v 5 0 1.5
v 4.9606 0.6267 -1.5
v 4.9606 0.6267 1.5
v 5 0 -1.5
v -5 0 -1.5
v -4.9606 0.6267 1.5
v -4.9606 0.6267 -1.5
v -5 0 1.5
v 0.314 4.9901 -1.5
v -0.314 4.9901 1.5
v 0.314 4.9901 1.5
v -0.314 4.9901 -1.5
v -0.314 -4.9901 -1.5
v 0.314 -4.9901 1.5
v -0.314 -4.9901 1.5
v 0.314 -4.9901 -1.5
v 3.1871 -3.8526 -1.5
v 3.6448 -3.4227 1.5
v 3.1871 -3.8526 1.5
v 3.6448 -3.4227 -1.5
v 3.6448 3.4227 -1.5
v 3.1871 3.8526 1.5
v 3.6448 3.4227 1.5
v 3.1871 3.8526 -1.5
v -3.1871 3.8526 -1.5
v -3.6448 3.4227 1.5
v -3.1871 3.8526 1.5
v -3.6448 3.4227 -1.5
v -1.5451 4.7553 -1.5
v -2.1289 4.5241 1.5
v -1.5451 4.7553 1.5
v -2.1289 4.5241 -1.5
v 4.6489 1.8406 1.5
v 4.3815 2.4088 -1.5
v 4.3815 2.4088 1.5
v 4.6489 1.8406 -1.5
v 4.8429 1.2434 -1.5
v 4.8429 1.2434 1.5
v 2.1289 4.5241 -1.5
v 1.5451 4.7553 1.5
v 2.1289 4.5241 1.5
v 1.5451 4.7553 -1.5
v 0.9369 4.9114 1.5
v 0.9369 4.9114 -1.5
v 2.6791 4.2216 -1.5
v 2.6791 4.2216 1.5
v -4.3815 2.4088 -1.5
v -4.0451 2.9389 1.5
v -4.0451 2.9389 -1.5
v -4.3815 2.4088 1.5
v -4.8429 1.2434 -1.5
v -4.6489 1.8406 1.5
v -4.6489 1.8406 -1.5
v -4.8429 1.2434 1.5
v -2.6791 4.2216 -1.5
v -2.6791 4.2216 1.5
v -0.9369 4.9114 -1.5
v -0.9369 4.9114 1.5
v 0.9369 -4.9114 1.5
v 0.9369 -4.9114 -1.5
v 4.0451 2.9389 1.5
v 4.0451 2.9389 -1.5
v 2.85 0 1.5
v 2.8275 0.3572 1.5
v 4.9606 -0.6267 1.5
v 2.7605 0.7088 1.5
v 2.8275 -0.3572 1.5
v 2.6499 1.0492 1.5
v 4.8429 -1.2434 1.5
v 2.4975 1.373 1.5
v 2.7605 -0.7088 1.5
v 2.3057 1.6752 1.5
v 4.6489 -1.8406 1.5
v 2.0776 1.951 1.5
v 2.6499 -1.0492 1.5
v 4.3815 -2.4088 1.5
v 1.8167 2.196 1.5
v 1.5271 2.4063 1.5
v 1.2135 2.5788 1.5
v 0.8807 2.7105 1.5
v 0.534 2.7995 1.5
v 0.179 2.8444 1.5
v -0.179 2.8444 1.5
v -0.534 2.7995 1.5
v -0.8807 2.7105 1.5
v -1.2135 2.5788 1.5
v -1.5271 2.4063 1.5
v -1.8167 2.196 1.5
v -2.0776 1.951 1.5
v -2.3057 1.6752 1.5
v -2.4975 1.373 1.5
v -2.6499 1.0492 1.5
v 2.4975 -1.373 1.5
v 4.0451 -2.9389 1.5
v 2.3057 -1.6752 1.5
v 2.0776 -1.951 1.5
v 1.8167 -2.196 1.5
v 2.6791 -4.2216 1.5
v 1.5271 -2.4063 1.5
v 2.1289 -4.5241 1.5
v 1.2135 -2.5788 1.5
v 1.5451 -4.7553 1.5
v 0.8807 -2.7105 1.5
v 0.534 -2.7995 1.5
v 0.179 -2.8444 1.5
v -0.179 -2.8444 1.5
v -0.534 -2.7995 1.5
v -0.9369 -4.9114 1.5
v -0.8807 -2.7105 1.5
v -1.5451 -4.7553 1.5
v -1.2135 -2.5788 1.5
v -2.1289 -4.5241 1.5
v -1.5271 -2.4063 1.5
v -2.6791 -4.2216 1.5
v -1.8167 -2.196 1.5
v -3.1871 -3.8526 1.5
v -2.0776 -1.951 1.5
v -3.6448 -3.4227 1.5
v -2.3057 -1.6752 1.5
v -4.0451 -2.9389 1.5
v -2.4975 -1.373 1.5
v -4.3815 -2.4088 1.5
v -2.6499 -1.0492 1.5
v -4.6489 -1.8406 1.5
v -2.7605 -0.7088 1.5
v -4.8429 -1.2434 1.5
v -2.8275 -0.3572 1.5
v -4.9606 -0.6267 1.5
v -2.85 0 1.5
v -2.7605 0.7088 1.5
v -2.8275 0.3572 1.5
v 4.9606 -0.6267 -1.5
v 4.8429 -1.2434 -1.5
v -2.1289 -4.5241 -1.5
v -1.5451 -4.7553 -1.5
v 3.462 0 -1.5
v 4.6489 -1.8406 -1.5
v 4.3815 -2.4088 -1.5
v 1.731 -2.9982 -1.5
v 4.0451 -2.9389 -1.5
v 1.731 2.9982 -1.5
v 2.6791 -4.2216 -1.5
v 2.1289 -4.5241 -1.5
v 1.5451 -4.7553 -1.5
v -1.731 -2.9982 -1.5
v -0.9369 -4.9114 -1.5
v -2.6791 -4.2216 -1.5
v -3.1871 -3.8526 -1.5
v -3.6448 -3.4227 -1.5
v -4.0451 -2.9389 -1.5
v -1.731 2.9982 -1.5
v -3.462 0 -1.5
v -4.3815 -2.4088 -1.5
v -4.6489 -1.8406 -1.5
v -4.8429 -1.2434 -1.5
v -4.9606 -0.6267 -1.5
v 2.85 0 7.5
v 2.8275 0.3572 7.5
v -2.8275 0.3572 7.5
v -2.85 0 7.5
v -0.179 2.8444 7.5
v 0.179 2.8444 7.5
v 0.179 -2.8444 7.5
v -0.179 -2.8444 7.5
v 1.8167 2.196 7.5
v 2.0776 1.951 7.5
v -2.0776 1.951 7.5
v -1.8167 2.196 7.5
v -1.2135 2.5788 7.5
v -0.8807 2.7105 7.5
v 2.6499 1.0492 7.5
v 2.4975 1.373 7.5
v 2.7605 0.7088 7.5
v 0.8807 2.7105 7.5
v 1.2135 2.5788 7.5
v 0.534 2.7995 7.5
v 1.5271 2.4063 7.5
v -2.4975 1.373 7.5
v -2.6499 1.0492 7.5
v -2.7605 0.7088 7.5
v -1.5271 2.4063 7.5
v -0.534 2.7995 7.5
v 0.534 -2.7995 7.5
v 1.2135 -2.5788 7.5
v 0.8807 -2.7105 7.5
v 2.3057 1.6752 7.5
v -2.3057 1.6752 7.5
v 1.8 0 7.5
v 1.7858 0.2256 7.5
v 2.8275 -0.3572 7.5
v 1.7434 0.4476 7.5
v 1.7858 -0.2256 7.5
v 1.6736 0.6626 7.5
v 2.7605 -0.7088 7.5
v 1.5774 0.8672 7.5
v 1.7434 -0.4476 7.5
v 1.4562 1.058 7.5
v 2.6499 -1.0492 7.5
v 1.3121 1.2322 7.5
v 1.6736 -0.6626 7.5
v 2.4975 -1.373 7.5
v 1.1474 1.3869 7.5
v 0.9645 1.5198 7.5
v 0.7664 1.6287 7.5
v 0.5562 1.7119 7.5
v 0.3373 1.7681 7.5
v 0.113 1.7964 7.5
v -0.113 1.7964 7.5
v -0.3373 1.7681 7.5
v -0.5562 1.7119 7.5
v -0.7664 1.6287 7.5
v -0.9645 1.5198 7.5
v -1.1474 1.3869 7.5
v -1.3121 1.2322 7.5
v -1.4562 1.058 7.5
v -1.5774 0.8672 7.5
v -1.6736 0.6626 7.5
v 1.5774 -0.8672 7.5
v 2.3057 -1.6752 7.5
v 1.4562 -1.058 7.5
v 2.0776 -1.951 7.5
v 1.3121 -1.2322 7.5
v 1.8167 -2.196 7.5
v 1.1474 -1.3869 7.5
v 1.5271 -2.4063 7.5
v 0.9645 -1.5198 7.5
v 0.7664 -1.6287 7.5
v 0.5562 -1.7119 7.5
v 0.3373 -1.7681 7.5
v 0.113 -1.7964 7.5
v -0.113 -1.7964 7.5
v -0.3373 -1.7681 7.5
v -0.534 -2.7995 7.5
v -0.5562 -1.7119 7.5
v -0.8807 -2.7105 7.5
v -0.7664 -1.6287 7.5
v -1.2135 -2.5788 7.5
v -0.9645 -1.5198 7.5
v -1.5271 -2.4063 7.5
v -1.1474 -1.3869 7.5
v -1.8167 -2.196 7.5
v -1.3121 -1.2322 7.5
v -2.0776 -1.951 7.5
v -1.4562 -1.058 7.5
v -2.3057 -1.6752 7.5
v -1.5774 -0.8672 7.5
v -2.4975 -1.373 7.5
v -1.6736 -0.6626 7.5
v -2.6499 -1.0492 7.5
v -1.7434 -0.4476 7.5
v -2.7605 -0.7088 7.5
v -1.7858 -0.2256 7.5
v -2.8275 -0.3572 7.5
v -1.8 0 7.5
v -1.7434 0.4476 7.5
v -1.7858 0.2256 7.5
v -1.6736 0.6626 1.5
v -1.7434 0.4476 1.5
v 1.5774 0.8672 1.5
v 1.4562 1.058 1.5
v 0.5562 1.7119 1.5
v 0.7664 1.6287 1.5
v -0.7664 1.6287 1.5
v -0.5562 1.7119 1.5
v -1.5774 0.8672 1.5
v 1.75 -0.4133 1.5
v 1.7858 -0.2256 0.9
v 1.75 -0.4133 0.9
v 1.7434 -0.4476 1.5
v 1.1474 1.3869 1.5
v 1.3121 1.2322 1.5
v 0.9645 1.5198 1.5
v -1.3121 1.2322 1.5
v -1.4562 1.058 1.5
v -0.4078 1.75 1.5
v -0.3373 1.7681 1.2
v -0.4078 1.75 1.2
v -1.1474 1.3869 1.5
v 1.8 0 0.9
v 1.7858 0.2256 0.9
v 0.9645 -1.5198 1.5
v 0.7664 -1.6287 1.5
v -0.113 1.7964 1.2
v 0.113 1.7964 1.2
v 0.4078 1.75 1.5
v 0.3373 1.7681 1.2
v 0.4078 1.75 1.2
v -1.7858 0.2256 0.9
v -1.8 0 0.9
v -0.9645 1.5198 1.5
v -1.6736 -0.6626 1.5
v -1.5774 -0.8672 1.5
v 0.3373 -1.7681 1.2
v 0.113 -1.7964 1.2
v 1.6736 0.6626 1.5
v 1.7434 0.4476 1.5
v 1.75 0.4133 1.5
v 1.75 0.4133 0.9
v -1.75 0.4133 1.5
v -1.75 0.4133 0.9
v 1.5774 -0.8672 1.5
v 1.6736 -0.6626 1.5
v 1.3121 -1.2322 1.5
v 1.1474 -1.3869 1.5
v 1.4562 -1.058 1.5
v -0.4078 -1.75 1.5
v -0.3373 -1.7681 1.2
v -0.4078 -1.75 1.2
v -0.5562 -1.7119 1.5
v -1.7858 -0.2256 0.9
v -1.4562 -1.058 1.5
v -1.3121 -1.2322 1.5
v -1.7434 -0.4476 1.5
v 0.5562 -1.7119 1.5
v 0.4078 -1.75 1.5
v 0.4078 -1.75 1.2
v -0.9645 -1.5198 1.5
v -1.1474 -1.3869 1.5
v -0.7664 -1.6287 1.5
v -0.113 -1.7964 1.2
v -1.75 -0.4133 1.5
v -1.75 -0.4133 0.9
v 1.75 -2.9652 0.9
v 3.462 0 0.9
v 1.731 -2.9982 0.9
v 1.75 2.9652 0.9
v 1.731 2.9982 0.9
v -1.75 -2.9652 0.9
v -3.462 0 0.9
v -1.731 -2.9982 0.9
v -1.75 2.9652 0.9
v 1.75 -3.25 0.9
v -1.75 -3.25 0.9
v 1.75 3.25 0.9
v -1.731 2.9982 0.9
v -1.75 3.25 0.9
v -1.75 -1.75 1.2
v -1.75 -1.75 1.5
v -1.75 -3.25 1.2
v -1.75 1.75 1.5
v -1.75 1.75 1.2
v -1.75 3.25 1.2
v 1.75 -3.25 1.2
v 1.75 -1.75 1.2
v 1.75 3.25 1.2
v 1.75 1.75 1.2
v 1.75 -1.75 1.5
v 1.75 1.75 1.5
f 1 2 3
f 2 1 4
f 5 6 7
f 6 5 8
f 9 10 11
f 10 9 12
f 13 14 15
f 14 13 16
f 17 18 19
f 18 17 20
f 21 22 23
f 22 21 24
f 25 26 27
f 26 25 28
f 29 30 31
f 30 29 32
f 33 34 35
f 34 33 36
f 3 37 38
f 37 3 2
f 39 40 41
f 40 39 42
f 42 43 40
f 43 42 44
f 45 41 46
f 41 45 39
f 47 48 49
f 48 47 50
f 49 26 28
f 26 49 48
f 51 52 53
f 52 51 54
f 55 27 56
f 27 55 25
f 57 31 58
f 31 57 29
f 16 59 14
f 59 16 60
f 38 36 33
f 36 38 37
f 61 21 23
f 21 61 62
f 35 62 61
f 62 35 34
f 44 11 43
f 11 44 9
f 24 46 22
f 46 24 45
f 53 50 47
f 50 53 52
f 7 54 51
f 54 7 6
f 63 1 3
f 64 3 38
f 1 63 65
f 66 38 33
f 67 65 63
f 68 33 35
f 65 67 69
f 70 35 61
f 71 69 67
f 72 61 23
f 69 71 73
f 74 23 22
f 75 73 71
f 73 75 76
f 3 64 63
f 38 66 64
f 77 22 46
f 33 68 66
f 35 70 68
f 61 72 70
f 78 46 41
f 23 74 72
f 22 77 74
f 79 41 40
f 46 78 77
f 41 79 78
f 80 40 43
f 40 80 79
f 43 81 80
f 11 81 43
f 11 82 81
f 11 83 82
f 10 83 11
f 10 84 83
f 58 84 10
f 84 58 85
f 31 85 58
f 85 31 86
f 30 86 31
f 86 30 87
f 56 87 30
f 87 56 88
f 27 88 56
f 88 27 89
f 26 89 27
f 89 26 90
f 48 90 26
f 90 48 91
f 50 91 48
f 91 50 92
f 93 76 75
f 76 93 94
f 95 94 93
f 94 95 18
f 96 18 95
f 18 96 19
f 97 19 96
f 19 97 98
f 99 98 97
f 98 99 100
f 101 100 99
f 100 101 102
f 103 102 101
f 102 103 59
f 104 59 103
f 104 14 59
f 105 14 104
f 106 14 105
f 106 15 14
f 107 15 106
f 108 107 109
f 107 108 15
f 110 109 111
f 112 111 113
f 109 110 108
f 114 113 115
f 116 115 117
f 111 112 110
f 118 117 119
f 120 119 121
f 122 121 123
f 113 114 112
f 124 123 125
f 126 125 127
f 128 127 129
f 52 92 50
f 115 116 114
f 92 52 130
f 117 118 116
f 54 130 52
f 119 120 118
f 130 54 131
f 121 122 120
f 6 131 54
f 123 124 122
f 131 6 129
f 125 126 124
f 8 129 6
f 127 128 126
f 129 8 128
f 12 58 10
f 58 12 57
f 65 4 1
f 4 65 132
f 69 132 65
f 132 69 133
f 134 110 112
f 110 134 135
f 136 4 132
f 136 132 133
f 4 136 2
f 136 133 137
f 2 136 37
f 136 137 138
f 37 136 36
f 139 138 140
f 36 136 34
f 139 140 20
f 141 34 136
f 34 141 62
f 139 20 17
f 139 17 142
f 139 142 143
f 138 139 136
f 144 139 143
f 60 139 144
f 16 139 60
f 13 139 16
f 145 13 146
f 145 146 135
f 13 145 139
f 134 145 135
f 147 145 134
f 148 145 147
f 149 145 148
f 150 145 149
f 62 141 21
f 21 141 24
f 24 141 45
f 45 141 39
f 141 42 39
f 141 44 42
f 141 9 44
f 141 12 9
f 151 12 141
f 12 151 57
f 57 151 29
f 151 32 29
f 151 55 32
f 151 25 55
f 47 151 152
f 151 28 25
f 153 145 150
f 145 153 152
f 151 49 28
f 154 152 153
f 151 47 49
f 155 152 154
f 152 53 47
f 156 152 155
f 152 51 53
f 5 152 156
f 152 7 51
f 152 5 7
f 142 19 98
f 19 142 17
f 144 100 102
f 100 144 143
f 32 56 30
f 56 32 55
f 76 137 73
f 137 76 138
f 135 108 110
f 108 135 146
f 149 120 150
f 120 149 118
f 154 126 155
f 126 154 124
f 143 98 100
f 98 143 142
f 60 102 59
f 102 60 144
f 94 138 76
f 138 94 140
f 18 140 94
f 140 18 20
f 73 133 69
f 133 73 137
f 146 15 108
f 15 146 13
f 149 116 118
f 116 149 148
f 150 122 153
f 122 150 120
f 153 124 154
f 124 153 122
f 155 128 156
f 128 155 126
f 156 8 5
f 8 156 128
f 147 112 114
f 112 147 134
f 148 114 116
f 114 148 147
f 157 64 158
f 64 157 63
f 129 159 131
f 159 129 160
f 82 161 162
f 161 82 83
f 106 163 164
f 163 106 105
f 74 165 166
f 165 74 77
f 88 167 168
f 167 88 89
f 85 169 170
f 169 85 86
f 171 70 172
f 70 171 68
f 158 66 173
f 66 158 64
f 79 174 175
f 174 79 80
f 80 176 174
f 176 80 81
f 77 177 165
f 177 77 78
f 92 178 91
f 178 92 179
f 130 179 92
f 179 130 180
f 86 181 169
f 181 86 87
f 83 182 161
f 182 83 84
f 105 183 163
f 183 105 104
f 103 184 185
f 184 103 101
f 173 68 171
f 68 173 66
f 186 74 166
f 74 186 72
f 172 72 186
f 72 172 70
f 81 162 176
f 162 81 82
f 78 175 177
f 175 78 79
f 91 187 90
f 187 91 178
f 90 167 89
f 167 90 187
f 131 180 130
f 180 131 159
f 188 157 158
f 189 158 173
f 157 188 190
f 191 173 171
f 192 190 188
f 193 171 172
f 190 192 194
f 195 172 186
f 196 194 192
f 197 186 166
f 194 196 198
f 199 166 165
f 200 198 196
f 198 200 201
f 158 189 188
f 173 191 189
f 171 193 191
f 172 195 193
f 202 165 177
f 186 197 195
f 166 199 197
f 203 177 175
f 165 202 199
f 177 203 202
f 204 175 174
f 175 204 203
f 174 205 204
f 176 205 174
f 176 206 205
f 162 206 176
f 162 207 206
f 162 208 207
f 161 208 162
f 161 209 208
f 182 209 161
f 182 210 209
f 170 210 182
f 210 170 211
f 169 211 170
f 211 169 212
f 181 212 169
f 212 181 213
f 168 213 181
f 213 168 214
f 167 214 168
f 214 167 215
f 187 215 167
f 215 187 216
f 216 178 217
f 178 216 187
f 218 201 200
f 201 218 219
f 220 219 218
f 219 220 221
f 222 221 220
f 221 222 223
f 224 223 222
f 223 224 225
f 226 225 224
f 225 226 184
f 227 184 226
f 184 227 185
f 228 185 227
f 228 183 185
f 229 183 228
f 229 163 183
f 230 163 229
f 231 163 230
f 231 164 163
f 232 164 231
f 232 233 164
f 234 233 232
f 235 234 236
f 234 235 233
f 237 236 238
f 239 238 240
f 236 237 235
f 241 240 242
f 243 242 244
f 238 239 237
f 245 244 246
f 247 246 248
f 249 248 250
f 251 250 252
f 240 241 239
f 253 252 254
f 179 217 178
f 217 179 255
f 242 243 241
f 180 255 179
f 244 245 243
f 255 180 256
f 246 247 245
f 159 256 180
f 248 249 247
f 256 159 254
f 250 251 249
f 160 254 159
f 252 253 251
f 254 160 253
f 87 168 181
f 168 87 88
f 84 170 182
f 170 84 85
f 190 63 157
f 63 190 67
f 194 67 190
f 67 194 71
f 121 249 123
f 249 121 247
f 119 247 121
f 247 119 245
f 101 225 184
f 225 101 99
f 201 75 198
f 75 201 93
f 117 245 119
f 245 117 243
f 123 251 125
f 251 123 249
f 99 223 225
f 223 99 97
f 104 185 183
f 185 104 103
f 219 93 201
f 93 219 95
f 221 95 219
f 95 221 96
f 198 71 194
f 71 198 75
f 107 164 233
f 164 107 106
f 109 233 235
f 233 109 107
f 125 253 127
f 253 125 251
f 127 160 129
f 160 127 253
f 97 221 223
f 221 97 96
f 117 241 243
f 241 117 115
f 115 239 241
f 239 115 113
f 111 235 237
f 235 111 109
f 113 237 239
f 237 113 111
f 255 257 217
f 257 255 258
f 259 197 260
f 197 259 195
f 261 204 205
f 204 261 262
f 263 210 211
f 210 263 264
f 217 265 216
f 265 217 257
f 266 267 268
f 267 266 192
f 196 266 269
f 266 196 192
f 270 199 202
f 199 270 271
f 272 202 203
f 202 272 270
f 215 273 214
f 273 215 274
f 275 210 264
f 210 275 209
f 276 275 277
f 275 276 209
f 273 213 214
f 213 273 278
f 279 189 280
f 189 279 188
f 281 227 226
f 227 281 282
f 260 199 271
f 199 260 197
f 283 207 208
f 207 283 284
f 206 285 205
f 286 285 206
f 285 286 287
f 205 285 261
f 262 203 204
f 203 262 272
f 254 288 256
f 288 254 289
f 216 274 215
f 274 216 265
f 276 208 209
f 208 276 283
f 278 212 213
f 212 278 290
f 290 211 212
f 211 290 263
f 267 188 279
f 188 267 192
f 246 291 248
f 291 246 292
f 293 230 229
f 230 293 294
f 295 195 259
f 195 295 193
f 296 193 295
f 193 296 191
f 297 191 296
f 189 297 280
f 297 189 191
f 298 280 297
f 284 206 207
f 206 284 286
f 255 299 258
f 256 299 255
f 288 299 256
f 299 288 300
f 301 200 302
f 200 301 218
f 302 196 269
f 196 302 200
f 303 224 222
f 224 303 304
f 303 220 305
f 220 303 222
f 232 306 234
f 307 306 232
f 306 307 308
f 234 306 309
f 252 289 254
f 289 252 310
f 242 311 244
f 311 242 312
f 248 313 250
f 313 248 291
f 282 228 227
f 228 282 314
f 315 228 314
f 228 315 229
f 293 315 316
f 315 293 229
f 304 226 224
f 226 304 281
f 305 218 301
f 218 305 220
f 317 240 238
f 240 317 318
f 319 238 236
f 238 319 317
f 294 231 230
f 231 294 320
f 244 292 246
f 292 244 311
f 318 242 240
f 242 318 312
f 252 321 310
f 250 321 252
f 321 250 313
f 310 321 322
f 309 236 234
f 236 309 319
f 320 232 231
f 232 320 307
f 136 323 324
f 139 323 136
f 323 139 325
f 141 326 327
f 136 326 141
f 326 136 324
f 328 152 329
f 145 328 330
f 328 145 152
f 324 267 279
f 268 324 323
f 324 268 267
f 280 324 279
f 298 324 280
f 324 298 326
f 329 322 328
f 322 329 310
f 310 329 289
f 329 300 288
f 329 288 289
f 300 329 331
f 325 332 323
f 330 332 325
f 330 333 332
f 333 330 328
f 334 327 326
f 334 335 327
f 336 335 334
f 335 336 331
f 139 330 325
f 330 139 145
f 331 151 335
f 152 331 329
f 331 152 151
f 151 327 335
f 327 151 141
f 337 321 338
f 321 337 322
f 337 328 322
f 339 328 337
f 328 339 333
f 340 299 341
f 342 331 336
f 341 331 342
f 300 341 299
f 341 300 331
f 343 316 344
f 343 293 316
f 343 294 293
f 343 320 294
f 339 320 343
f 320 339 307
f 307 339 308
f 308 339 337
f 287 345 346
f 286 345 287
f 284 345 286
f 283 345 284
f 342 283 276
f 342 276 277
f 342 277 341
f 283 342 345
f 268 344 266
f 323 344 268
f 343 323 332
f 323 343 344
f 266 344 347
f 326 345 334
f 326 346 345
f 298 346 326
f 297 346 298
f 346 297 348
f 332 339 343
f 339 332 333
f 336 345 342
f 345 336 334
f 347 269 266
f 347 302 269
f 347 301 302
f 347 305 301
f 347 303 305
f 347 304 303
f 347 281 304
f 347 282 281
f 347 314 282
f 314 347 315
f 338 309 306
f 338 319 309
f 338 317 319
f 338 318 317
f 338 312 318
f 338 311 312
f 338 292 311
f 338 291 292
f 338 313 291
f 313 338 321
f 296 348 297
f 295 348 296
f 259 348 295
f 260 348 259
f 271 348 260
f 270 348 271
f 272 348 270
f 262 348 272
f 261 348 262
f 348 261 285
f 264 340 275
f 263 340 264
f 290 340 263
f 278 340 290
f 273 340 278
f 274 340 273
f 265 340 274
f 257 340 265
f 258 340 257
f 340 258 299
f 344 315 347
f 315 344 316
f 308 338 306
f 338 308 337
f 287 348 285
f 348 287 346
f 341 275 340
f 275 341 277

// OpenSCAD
$fn = 50;


difference() {
	union() {
		translate(v = [0, 0, -1.5000000000]) {
			rotate(a = [0, 0, 0]) {
				cylinder(h = 3, r = 5.0000000000);
			}
		}
		translate(v = [0, 0, -1.5000000000]) {
			rotate(a = [0, 0, 0]) {
				cylinder(h = 9, r = 2.8500000000);
			}
		}
	}
	union() {
		translate(v = [0, 0, -125.0000000000]) {
			rotate(a = [0, 0, 0]) {
				cylinder(h = 250, r = 1.8000000000);
			}
		}
		translate(v = [0, 0, -2.1000000000]) {
			rotate(a = [0, 0, 0]) {
				#translate(v = [0, 0, 0]) {
					rotate(a = [0, 0, 0]) {
						linear_extrude(height = 3) {
							polygon(points = [[3.4620000000, 0.0000000000], [1.7310000000, 2.9981799479], [-1.7310000000, 2.9981799479], [-3.4620000000, 0.0000000000], [-1.7310000000, -2.9981799479], [1.7310000000, -2.9981799479]]);
						}
					}
				}
			}
		}
		#translate(v = [-1.7500000000, -3.2500000000, 0.9000000000]) {
			rotate(a = [0, 0, 0]) {
				cube(size = [3.5000000000, 6.5000000000, 0.3000000000]);
			}
		}
		#translate(v = [-1.7500000000, -1.7500000000, 1.2000000000]) {
			rotate(a = [0, 0, 0]) {
				cube(size = [3.5000000000, 3.5000000000, 0.3000000000]);
			}
		}
		#translate(v = [-1.7500000000, -3.2500000000, -2.4000000000]) {
			rotate(a = [0, 0, 0]) {
				cube(size = [3.5000000000, 6.5000000000, 0.3000000000]);
			}
		}
		#translate(v = [-1.7500000000, -1.7500000000, -2.7000000000]) {
			rotate(a = [0, 0, 0]) {
				cube(size = [3.5000000000, 3.5000000000, 0.3000000000]);
			}
		}
	}
}
